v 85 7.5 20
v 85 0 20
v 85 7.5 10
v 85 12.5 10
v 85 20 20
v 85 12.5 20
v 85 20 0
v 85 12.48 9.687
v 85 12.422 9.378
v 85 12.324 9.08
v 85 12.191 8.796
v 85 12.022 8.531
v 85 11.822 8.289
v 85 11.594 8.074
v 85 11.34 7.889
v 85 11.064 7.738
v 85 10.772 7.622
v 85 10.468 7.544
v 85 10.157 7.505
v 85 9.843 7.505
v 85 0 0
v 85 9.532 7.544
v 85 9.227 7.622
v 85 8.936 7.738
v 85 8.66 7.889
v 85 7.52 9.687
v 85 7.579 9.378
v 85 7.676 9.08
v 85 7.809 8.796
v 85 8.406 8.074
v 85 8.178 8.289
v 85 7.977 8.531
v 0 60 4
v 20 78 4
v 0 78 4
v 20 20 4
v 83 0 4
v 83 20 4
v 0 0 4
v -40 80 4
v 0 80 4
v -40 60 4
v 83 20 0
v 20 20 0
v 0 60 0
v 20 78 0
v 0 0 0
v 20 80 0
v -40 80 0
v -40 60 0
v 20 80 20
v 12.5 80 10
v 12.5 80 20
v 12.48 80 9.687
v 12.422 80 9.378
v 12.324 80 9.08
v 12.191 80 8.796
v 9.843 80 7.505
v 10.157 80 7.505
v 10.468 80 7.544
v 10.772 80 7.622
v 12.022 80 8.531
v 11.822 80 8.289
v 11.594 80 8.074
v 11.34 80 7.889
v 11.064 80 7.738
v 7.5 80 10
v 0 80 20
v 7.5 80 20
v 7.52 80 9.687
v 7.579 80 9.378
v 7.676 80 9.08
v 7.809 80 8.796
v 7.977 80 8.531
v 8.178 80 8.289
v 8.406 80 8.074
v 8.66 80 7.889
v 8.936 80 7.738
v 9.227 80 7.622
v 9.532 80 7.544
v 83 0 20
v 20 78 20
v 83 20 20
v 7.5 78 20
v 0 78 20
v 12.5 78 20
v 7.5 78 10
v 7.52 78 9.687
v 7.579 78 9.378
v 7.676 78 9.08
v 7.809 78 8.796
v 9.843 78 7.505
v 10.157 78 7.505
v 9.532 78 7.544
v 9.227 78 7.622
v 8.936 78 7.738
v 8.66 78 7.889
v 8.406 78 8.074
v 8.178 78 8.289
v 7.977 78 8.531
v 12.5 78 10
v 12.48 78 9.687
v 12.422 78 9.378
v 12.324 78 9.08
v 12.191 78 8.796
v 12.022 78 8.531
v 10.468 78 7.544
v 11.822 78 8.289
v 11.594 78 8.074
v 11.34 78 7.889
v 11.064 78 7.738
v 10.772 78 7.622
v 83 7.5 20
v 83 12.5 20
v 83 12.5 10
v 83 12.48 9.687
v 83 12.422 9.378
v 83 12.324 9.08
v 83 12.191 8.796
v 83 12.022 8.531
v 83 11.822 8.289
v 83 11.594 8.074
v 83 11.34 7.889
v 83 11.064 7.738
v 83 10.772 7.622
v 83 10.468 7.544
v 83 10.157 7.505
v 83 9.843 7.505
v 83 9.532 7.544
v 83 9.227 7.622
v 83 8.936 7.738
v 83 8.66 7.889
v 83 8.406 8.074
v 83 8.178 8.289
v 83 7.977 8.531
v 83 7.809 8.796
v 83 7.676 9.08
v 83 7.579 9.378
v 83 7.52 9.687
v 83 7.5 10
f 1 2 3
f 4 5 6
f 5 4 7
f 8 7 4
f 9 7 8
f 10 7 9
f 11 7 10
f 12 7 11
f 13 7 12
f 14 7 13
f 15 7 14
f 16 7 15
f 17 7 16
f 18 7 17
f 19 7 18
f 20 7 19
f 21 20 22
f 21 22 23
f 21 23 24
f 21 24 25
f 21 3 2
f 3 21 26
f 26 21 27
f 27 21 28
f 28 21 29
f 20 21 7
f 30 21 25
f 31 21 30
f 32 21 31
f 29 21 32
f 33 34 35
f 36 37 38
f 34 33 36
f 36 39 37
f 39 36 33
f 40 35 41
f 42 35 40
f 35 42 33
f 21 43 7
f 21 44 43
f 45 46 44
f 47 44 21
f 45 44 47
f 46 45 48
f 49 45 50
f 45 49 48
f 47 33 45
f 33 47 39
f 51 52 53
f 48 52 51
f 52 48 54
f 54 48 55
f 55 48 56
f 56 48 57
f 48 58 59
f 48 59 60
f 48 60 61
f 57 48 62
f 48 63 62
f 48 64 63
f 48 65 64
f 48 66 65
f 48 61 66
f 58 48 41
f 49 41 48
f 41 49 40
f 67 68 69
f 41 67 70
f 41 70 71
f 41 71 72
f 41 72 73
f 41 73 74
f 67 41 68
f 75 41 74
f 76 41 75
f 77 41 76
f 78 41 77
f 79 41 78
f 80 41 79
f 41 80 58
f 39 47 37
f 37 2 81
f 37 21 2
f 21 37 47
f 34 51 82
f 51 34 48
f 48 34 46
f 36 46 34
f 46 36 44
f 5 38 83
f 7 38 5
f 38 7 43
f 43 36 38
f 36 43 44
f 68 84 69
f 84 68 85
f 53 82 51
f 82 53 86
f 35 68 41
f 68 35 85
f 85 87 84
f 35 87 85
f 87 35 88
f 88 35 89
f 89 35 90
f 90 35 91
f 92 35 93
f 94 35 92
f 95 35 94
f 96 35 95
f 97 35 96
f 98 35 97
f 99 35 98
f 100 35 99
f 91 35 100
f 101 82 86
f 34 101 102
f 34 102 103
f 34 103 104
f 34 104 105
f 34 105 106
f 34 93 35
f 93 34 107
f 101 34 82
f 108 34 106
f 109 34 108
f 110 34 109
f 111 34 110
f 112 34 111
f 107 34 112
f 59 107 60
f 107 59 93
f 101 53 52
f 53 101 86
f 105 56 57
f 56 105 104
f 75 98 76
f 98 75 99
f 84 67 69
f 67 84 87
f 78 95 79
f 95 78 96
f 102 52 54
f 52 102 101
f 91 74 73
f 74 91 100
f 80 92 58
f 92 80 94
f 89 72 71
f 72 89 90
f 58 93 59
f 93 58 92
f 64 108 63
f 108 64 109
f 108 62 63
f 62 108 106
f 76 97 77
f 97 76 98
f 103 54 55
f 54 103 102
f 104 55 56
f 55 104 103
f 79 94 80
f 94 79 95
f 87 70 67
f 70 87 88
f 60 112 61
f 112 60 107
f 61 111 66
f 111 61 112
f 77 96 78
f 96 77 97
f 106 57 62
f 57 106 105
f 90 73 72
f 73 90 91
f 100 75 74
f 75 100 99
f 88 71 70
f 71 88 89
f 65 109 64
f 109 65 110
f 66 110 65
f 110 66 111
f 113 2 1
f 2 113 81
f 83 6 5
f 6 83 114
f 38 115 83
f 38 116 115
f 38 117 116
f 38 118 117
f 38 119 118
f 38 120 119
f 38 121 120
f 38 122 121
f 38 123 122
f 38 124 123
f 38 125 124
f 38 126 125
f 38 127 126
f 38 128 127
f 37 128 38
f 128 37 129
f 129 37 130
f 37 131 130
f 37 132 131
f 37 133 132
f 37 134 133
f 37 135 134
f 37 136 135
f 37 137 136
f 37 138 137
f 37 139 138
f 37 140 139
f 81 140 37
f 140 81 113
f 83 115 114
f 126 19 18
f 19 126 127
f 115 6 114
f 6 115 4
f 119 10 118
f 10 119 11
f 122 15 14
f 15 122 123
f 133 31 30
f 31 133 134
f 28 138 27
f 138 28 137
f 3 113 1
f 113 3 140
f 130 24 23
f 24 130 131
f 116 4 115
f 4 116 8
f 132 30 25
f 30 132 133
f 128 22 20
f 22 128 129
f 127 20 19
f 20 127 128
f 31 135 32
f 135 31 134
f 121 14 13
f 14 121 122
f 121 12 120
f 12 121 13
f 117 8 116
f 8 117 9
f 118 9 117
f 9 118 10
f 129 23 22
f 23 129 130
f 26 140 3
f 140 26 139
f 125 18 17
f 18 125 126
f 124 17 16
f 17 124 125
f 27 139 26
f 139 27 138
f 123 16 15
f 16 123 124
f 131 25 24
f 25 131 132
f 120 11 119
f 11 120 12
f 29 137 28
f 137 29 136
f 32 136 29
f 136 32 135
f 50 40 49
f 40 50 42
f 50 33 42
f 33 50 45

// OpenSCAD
$fn=50;

x = 75.0;
y = 70.0;
width = 20.0;
height = 4.0;
bracket_height = 2.0;
bracket_length = 20.0;
screw = 5.0;


module bracket(x, y) {
     difference(){
     translate([x, y, 0]) cube([width, bracket_height, bracket_length], false);
     hull(){
          translate([x + (width/2), y + bracket_height + 0.1, 10]) rotate(a=90, v=[1,0,0]) cylinder(h=bracket_height+0.2, d=screw, center=false);
          translate([x + (width/2), y + bracket_height + 0.1, bracket_length+10]) rotate(a=90, v=[1,0,0]) cylinder(h=bracket_height+0.2, d=screw, center=false);
     }}
};


difference(){
     cube([x + (width/2), y + (width/2), height], false);
     translate([width, width, 0]) cube([x - (width/2), y - (width/2), height], false);
};
translate([-2 * width, y - (width/2), 0]) cube([2 * width, width, height], false);

bracket(0, y + (width/2) - bracket_height);
translate([x + (width/2), 0, 0]) rotate(a=90, v=[0,0,1]) bracket(0, 0);
